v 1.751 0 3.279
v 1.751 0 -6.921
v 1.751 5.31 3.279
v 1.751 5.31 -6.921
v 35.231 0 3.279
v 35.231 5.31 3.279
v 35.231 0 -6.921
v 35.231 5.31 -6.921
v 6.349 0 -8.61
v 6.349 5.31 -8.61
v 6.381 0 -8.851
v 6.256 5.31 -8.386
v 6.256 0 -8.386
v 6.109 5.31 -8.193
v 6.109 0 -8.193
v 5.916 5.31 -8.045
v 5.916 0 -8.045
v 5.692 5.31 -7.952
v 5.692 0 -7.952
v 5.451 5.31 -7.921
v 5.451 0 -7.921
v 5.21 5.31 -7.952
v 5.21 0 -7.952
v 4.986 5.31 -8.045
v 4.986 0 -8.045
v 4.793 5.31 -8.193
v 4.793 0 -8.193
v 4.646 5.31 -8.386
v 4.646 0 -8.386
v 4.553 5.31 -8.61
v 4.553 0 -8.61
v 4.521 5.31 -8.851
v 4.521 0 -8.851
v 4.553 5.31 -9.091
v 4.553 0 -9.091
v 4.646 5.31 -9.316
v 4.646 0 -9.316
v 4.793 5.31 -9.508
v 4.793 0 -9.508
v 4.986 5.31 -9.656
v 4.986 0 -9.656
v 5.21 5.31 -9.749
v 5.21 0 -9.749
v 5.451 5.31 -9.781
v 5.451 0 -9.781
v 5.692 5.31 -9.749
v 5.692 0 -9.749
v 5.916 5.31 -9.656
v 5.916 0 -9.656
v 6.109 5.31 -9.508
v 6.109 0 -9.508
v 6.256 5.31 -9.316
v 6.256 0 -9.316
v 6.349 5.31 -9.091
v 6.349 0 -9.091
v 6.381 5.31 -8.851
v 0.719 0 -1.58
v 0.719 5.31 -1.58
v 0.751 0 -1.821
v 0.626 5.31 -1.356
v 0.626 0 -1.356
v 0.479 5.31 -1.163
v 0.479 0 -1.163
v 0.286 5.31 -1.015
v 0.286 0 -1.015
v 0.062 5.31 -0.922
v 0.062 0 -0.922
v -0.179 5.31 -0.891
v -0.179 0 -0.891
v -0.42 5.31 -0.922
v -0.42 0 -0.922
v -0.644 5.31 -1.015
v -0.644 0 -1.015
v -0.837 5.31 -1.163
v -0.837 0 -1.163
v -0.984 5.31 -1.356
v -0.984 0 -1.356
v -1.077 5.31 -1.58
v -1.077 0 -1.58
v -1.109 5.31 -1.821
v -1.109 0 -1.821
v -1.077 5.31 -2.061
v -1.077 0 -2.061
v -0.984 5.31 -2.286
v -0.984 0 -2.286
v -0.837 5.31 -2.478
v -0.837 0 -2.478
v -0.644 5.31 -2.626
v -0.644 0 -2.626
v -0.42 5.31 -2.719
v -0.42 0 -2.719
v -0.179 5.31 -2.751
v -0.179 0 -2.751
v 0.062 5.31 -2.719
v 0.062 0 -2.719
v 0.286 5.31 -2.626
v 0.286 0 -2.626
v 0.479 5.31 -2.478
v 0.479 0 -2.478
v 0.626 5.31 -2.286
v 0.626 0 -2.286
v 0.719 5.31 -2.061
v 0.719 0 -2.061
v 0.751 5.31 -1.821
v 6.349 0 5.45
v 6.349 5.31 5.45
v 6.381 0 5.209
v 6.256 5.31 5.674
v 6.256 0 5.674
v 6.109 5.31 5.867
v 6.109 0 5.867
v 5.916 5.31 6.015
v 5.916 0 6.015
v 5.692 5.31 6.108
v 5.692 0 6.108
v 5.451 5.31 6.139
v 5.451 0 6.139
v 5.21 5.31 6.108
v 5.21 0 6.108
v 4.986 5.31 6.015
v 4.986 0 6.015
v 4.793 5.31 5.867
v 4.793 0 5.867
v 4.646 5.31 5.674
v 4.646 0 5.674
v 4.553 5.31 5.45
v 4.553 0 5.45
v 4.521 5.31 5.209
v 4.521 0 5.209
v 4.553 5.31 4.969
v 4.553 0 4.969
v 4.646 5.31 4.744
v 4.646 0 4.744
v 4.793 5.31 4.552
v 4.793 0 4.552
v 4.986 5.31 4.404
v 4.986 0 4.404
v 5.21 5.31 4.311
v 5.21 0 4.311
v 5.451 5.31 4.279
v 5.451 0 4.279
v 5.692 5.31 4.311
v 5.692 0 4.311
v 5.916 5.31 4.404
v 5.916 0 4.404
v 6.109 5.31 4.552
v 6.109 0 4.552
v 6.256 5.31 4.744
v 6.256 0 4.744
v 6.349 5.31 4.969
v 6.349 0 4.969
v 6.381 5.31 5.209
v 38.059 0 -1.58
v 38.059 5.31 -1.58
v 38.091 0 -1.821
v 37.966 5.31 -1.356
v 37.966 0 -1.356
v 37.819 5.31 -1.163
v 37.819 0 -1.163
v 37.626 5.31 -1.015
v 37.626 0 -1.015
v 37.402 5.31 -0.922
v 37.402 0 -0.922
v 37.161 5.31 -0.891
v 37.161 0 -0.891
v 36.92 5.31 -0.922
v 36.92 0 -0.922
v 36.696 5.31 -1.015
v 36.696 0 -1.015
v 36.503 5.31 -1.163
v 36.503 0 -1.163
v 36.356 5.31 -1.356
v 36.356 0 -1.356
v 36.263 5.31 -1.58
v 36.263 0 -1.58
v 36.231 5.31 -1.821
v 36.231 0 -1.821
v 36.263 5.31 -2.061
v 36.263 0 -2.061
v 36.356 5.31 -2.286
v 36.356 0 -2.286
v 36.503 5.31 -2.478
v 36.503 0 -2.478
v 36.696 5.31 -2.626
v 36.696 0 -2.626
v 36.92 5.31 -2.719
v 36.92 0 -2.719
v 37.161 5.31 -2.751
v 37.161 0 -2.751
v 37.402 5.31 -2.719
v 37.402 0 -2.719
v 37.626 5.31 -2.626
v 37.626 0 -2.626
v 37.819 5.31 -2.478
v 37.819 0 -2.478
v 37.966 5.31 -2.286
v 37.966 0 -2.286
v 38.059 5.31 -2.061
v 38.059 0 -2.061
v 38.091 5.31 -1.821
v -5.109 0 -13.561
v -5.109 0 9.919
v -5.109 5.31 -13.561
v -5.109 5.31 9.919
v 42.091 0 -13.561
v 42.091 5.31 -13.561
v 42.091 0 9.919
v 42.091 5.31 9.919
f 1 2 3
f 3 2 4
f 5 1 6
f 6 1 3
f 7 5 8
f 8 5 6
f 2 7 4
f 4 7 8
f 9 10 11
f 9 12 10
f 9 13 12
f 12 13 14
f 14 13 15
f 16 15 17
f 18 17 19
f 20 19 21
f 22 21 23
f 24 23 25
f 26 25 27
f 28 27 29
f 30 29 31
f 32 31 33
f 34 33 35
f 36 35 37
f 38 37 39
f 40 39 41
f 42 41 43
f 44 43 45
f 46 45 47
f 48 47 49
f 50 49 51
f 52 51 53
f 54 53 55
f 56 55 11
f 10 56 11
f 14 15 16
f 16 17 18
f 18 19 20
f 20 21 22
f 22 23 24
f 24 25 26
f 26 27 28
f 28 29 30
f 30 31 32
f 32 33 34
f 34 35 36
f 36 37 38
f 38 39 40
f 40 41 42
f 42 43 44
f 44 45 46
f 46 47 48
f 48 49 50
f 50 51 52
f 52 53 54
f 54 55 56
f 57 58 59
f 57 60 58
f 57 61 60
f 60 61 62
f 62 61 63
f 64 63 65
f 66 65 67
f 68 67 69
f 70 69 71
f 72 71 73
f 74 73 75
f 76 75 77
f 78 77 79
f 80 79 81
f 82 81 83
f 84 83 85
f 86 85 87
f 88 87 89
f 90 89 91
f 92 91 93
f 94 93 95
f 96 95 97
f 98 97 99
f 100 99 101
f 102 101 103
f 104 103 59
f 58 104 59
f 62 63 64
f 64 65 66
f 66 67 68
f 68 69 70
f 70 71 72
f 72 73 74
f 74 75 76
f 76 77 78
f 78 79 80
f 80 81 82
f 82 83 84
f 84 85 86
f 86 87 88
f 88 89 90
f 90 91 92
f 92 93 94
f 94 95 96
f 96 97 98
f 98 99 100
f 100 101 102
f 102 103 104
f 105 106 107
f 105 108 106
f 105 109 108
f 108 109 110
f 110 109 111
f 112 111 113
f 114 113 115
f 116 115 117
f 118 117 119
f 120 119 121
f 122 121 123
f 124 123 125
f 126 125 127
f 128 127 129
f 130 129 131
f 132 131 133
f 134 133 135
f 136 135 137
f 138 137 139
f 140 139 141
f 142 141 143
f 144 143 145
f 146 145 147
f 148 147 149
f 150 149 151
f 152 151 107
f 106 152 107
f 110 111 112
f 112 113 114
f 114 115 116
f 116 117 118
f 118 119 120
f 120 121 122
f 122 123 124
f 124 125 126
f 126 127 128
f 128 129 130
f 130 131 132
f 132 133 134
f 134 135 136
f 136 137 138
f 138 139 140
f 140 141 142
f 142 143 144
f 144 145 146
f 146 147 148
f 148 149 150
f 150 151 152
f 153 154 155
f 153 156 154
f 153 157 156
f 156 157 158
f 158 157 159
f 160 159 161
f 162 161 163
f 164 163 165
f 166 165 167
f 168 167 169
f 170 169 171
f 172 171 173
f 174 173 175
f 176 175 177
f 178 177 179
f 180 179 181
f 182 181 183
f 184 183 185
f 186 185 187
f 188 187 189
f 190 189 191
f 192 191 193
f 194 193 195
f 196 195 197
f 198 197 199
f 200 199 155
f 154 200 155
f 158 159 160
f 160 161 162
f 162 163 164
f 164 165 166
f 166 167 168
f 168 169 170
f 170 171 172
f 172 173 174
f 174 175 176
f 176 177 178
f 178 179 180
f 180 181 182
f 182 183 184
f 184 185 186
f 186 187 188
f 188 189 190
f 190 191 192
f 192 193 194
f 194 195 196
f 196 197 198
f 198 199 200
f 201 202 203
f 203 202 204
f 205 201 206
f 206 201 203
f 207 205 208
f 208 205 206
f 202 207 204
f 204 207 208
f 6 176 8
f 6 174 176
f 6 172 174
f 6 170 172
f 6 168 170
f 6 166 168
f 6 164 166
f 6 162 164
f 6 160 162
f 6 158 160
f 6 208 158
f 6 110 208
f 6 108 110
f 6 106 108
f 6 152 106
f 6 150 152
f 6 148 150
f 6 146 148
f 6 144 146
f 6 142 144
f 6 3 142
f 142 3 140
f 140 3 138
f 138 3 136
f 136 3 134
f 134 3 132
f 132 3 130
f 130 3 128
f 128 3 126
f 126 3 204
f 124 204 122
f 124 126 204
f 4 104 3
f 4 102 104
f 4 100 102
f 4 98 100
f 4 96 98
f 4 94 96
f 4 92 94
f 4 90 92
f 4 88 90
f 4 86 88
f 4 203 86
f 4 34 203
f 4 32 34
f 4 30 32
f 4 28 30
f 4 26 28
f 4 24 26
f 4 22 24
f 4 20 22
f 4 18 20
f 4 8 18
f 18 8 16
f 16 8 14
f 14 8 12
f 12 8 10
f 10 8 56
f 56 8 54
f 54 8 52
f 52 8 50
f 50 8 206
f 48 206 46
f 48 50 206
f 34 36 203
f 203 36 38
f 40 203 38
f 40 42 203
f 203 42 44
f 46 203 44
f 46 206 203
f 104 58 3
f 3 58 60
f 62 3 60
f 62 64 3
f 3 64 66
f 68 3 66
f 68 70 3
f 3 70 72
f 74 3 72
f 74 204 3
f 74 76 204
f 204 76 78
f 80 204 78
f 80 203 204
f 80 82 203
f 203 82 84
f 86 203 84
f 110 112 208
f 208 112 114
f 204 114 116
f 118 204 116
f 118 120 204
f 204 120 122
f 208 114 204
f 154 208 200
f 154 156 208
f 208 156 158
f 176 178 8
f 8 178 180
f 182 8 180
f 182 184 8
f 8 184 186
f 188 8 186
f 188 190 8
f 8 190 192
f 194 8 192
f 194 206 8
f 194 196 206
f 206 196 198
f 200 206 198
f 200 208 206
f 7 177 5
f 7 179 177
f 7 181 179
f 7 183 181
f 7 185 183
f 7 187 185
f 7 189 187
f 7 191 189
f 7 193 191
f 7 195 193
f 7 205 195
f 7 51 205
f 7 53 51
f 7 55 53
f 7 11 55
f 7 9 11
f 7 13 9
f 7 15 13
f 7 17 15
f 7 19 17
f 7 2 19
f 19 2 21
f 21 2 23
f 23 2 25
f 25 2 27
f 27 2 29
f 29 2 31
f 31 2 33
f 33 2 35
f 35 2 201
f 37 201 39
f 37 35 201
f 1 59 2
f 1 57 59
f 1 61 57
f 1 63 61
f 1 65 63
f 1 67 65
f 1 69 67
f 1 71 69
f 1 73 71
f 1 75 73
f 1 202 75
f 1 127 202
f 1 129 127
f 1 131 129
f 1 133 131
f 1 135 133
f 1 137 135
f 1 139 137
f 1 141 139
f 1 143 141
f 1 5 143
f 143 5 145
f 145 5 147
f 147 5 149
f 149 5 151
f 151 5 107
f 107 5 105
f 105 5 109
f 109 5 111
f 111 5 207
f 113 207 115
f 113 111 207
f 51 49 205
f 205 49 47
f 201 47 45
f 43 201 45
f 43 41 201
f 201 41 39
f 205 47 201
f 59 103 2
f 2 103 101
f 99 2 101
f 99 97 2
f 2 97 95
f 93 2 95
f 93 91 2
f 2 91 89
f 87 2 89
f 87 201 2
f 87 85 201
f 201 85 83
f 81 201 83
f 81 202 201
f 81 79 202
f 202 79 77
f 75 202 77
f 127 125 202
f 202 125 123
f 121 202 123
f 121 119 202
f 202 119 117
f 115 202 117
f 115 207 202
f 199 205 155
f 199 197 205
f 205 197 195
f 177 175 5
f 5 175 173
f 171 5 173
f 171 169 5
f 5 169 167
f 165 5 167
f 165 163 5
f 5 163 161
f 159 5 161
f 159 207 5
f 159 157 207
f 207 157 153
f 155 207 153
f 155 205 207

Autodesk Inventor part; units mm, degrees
ref_plane "YZ Plane" through (0, 0, 0) normal (1, 0, 0) x (0, 1, 0)
ref_plane "XZ Plane" through (0, 0, 0) normal (0, 1, 0) x (-1, 0, 0)
ref_plane "XY Plane" through (0, 0, 0) normal (0, 0, 1) x (1, 0, 0)
sketch "Sketch1" plane through (0, 0, 0) normal (0, 1, 0) x (-1, 0, 0)
  line L0 (5.1091, 9.9192) -> (-42.0909, 9.9192)
  line L1 (-42.0909, 9.9192) -> (-42.0909, -13.5608)
  line L2 (-42.0909, -13.5608) -> (5.1091, -13.5608)
  line L3 (5.1091, -13.5608) -> (5.1091, 9.9192)
  point P0 (0, 0)
  dimension "d0" = 23.48
  dimension "d1" = 47.2
extrude "Extrusion1" add sketch "Sketch1" along normal blind 5.31
sketch "Sketch2" plane through (0, 5.31, 0) normal (0, 1, 0) x (1, 0, 0)
  circle A0 centre (-0.1791, 1.8208) radius 0.93
  circle A1 centre (5.4509, -5.2092) radius 0.93
  line L0 (-5.1091, -9.9192) -> (42.0909, -9.9192) projected
  line L1 (42.0909, 13.5608) -> (-5.1091, 13.5608) projected
  circle A2 centre (5.4509, 8.8508) radius 0.93
  line L2 (-5.1091, 13.5608) -> (-5.1091, -9.9192) projected
  line L3 (42.0909, -9.9192) -> (42.0909, 13.5608) projected
  circle A3 centre (37.1609, 1.8208) radius 0.93
  point P0 (0, 0)
  dimension "d4" = 1.86
  dimension "d7" = 1.86
  dimension "d10" = 3.78
  dimension "d12" = 0
  dimension "d14" = 1.86
  dimension "d15" = 14.06
  dimension "d16" = 3.78
  dimension "d17" = 4
  dimension "d19" = 0
  dimension "d20" = 1.86
  dimension "d23" = 37.34
  dimension "d24" = 4
  dimension "d27" = 5.63
  dimension "d29" = 11.74
  dimension "d30" = 11.74
extrude "Extrusion2" cut sketch "Sketch2" against normal through all contours A0 | A1 | A2 | A3
sketch "Sketch3" plane through (0, 5.31, 0) normal (0, 1, 0) x (1, 0, 0)
  line L0 (1.7509, -3.2792) -> (35.2309, -3.2792)
  line L1 (35.2309, -3.2792) -> (35.2309, 6.9208)
  line L2 (35.2309, 6.9208) -> (1.7509, 6.9208)
  line L3 (1.7509, 6.9208) -> (1.7509, -3.2792)
  circle A0 centre (-0.1791, 1.8208) radius 0.93 projected
  circle A1 centre (5.4509, 8.8508) radius 0.93 projected
  circle A2 centre (5.4509, -5.2092) radius 0.93 projected
  circle A3 centre (37.1609, 1.8208) radius 0.93 projected
  point P0 (0, 0)
  dimension "d33" = 1
  dimension "d34" = 1
  dimension "d35" = 1
  dimension "d36" = 1
extrude "Extrusion3" cut sketch "Sketch3" against normal through all contours L3 L2 L1 L0
properties part number "490HV_SampleConnector"
